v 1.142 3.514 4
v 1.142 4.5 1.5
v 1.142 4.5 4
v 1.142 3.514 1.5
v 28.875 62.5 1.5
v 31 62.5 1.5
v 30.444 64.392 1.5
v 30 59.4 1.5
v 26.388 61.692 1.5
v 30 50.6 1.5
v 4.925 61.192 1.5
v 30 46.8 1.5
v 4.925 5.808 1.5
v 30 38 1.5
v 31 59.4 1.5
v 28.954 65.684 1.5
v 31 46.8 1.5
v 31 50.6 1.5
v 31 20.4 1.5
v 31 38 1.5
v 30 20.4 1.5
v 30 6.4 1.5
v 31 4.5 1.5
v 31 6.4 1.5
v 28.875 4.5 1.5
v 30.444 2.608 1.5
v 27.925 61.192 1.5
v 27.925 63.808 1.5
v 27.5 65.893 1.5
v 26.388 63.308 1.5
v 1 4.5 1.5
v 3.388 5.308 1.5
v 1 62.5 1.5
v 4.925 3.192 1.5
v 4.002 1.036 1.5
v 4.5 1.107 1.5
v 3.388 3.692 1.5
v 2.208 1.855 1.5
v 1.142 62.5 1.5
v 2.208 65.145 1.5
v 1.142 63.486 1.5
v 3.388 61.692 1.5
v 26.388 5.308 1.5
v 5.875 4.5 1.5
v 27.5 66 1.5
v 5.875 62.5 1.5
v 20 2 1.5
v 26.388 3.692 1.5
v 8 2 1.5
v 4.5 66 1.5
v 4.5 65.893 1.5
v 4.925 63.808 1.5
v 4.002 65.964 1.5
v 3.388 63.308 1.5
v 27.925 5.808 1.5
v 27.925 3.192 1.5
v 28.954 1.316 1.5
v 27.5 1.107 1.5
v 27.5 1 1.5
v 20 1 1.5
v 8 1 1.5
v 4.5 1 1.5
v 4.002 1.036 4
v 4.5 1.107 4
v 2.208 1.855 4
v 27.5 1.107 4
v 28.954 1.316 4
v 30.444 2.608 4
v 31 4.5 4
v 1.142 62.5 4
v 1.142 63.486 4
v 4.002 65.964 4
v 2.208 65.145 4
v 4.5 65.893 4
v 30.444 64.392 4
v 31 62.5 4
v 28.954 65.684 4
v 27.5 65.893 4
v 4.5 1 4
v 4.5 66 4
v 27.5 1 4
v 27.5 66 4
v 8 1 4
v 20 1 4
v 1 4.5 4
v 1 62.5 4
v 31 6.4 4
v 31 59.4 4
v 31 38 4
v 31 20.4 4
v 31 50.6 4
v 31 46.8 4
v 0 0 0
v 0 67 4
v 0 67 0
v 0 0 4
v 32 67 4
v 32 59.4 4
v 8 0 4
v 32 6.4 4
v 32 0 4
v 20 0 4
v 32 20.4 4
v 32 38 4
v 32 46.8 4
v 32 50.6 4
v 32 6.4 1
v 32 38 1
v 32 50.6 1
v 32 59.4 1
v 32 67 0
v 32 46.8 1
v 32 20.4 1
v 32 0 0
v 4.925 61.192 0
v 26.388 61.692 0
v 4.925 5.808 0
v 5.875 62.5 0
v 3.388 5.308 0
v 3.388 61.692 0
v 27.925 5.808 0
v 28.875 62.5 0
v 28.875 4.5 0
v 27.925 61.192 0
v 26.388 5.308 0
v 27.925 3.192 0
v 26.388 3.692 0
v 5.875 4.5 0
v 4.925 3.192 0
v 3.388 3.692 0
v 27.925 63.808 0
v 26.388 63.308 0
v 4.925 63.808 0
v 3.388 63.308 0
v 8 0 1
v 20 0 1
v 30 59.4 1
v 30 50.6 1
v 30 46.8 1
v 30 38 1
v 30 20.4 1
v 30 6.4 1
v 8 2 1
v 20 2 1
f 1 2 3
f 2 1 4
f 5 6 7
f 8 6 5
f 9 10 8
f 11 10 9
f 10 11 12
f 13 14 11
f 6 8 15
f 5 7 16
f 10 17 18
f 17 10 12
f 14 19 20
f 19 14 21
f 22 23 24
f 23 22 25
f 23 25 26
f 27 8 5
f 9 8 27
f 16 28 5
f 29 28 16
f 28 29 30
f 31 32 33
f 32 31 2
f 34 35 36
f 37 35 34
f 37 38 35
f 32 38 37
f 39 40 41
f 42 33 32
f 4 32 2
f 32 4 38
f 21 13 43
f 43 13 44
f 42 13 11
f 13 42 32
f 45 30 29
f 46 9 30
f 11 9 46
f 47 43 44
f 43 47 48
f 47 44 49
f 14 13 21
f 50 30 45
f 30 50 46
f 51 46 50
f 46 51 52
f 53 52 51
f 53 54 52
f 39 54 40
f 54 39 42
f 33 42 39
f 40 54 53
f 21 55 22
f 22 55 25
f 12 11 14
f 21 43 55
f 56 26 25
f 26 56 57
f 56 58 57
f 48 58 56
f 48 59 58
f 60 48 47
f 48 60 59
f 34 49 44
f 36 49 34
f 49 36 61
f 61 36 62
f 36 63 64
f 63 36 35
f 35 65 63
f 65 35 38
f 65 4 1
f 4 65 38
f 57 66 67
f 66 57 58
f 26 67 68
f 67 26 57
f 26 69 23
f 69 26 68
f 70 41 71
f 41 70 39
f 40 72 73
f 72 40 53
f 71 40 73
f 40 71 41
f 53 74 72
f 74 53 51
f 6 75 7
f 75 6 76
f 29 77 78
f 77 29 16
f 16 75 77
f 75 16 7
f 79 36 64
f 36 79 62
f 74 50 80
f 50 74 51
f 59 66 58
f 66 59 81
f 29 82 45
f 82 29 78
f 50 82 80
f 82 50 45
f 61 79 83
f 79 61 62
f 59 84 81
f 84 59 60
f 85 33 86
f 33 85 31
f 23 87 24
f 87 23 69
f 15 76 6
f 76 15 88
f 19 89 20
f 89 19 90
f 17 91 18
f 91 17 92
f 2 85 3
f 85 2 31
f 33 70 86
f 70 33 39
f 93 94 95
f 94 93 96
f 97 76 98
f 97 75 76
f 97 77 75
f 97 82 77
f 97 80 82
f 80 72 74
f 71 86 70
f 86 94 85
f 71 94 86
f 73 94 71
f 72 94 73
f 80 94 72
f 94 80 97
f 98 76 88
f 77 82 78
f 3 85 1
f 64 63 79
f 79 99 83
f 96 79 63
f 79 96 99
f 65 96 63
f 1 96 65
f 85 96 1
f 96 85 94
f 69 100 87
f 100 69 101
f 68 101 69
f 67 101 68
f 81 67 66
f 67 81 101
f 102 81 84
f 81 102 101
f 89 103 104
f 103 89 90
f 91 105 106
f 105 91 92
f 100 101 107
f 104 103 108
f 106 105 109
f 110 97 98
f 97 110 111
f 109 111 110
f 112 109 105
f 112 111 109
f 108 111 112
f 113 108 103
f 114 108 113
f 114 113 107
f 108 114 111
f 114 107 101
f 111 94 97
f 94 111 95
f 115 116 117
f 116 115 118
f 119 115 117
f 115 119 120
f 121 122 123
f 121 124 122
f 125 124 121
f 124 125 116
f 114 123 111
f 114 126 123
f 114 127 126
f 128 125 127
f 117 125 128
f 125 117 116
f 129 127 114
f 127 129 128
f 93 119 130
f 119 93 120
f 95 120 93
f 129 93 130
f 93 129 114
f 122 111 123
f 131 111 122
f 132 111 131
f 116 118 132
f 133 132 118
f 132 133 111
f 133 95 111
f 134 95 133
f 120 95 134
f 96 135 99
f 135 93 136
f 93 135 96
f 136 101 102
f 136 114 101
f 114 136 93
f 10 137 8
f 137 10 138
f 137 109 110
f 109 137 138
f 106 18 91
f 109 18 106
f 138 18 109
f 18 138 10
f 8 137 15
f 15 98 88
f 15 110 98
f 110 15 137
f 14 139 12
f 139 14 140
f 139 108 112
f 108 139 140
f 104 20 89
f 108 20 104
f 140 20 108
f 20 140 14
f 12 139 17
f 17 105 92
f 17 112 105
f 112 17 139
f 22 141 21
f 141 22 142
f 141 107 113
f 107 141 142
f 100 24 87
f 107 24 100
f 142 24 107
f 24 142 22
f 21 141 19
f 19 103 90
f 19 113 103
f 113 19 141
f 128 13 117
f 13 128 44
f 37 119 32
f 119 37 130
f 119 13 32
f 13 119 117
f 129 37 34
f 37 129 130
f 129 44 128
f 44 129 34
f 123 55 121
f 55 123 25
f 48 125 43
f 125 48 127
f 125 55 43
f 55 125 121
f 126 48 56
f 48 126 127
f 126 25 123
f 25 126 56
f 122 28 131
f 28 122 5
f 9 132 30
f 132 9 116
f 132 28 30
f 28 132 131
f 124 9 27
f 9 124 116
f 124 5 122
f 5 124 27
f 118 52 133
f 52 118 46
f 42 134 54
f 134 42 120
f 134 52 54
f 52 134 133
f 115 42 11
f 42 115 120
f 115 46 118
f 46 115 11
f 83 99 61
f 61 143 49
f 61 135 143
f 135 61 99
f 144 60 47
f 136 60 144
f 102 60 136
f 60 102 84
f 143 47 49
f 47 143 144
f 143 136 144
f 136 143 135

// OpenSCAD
cornerRad = 3.5;
baseThickness = 1;
usbWidth = 8.8;
powerCenter = 54;
usbCenter = 41.4;
hdmiCenter = 12.4;
hdmiWidth = 14;
sdWidth = 13.85;
sdCenter = 16.9;
difference() {
    difference() {
        cube([32,67,4]);
        translate([1,1,1.5]) rpiOutline(4);
    }
    translate([4.5,4.5,0]) screwhole();
    translate([27.5,4.5,0]) screwhole();
    translate([27.5,62.5,0]) screwhole();
    translate([4.5,62.5,0]) screwhole();
    translate([0,1,0]) {
        translate([30,powerCenter-(usbWidth/2),1]) cube([2,usbWidth,3]);
        translate([30,usbCenter-(usbWidth/2),1]) cube([2,usbWidth,3]);
        translate([30,hdmiCenter-(hdmiWidth/2),1]) cube([2,hdmiWidth,3]);    
    }
    translate([1,0,0]) {
        translate([(32-sdCenter)-(sdWidth/2),0,1]) cube([sdWidth,2,3]); 
    }
}

module rpiOutline(thick) {
    union() {
        translate([3.5,3.5,0]) corner(thick);
        translate([26.5,3.5,0]) corner(thick);
        translate([3.5,61.5,0]) corner(thick);
        translate([26.5,61.5,0]) corner(thick);
        translate([3.5,0,0]) cube([23,65,thick]);
        translate([0,3.5,0]) cube([30,58,thick]);
    }
}

module screwhole () {
        cylinder(2,1.375,1.375);
}
module corner (thick) {
    cylinder(thick,cornerRad,cornerRad);
}
